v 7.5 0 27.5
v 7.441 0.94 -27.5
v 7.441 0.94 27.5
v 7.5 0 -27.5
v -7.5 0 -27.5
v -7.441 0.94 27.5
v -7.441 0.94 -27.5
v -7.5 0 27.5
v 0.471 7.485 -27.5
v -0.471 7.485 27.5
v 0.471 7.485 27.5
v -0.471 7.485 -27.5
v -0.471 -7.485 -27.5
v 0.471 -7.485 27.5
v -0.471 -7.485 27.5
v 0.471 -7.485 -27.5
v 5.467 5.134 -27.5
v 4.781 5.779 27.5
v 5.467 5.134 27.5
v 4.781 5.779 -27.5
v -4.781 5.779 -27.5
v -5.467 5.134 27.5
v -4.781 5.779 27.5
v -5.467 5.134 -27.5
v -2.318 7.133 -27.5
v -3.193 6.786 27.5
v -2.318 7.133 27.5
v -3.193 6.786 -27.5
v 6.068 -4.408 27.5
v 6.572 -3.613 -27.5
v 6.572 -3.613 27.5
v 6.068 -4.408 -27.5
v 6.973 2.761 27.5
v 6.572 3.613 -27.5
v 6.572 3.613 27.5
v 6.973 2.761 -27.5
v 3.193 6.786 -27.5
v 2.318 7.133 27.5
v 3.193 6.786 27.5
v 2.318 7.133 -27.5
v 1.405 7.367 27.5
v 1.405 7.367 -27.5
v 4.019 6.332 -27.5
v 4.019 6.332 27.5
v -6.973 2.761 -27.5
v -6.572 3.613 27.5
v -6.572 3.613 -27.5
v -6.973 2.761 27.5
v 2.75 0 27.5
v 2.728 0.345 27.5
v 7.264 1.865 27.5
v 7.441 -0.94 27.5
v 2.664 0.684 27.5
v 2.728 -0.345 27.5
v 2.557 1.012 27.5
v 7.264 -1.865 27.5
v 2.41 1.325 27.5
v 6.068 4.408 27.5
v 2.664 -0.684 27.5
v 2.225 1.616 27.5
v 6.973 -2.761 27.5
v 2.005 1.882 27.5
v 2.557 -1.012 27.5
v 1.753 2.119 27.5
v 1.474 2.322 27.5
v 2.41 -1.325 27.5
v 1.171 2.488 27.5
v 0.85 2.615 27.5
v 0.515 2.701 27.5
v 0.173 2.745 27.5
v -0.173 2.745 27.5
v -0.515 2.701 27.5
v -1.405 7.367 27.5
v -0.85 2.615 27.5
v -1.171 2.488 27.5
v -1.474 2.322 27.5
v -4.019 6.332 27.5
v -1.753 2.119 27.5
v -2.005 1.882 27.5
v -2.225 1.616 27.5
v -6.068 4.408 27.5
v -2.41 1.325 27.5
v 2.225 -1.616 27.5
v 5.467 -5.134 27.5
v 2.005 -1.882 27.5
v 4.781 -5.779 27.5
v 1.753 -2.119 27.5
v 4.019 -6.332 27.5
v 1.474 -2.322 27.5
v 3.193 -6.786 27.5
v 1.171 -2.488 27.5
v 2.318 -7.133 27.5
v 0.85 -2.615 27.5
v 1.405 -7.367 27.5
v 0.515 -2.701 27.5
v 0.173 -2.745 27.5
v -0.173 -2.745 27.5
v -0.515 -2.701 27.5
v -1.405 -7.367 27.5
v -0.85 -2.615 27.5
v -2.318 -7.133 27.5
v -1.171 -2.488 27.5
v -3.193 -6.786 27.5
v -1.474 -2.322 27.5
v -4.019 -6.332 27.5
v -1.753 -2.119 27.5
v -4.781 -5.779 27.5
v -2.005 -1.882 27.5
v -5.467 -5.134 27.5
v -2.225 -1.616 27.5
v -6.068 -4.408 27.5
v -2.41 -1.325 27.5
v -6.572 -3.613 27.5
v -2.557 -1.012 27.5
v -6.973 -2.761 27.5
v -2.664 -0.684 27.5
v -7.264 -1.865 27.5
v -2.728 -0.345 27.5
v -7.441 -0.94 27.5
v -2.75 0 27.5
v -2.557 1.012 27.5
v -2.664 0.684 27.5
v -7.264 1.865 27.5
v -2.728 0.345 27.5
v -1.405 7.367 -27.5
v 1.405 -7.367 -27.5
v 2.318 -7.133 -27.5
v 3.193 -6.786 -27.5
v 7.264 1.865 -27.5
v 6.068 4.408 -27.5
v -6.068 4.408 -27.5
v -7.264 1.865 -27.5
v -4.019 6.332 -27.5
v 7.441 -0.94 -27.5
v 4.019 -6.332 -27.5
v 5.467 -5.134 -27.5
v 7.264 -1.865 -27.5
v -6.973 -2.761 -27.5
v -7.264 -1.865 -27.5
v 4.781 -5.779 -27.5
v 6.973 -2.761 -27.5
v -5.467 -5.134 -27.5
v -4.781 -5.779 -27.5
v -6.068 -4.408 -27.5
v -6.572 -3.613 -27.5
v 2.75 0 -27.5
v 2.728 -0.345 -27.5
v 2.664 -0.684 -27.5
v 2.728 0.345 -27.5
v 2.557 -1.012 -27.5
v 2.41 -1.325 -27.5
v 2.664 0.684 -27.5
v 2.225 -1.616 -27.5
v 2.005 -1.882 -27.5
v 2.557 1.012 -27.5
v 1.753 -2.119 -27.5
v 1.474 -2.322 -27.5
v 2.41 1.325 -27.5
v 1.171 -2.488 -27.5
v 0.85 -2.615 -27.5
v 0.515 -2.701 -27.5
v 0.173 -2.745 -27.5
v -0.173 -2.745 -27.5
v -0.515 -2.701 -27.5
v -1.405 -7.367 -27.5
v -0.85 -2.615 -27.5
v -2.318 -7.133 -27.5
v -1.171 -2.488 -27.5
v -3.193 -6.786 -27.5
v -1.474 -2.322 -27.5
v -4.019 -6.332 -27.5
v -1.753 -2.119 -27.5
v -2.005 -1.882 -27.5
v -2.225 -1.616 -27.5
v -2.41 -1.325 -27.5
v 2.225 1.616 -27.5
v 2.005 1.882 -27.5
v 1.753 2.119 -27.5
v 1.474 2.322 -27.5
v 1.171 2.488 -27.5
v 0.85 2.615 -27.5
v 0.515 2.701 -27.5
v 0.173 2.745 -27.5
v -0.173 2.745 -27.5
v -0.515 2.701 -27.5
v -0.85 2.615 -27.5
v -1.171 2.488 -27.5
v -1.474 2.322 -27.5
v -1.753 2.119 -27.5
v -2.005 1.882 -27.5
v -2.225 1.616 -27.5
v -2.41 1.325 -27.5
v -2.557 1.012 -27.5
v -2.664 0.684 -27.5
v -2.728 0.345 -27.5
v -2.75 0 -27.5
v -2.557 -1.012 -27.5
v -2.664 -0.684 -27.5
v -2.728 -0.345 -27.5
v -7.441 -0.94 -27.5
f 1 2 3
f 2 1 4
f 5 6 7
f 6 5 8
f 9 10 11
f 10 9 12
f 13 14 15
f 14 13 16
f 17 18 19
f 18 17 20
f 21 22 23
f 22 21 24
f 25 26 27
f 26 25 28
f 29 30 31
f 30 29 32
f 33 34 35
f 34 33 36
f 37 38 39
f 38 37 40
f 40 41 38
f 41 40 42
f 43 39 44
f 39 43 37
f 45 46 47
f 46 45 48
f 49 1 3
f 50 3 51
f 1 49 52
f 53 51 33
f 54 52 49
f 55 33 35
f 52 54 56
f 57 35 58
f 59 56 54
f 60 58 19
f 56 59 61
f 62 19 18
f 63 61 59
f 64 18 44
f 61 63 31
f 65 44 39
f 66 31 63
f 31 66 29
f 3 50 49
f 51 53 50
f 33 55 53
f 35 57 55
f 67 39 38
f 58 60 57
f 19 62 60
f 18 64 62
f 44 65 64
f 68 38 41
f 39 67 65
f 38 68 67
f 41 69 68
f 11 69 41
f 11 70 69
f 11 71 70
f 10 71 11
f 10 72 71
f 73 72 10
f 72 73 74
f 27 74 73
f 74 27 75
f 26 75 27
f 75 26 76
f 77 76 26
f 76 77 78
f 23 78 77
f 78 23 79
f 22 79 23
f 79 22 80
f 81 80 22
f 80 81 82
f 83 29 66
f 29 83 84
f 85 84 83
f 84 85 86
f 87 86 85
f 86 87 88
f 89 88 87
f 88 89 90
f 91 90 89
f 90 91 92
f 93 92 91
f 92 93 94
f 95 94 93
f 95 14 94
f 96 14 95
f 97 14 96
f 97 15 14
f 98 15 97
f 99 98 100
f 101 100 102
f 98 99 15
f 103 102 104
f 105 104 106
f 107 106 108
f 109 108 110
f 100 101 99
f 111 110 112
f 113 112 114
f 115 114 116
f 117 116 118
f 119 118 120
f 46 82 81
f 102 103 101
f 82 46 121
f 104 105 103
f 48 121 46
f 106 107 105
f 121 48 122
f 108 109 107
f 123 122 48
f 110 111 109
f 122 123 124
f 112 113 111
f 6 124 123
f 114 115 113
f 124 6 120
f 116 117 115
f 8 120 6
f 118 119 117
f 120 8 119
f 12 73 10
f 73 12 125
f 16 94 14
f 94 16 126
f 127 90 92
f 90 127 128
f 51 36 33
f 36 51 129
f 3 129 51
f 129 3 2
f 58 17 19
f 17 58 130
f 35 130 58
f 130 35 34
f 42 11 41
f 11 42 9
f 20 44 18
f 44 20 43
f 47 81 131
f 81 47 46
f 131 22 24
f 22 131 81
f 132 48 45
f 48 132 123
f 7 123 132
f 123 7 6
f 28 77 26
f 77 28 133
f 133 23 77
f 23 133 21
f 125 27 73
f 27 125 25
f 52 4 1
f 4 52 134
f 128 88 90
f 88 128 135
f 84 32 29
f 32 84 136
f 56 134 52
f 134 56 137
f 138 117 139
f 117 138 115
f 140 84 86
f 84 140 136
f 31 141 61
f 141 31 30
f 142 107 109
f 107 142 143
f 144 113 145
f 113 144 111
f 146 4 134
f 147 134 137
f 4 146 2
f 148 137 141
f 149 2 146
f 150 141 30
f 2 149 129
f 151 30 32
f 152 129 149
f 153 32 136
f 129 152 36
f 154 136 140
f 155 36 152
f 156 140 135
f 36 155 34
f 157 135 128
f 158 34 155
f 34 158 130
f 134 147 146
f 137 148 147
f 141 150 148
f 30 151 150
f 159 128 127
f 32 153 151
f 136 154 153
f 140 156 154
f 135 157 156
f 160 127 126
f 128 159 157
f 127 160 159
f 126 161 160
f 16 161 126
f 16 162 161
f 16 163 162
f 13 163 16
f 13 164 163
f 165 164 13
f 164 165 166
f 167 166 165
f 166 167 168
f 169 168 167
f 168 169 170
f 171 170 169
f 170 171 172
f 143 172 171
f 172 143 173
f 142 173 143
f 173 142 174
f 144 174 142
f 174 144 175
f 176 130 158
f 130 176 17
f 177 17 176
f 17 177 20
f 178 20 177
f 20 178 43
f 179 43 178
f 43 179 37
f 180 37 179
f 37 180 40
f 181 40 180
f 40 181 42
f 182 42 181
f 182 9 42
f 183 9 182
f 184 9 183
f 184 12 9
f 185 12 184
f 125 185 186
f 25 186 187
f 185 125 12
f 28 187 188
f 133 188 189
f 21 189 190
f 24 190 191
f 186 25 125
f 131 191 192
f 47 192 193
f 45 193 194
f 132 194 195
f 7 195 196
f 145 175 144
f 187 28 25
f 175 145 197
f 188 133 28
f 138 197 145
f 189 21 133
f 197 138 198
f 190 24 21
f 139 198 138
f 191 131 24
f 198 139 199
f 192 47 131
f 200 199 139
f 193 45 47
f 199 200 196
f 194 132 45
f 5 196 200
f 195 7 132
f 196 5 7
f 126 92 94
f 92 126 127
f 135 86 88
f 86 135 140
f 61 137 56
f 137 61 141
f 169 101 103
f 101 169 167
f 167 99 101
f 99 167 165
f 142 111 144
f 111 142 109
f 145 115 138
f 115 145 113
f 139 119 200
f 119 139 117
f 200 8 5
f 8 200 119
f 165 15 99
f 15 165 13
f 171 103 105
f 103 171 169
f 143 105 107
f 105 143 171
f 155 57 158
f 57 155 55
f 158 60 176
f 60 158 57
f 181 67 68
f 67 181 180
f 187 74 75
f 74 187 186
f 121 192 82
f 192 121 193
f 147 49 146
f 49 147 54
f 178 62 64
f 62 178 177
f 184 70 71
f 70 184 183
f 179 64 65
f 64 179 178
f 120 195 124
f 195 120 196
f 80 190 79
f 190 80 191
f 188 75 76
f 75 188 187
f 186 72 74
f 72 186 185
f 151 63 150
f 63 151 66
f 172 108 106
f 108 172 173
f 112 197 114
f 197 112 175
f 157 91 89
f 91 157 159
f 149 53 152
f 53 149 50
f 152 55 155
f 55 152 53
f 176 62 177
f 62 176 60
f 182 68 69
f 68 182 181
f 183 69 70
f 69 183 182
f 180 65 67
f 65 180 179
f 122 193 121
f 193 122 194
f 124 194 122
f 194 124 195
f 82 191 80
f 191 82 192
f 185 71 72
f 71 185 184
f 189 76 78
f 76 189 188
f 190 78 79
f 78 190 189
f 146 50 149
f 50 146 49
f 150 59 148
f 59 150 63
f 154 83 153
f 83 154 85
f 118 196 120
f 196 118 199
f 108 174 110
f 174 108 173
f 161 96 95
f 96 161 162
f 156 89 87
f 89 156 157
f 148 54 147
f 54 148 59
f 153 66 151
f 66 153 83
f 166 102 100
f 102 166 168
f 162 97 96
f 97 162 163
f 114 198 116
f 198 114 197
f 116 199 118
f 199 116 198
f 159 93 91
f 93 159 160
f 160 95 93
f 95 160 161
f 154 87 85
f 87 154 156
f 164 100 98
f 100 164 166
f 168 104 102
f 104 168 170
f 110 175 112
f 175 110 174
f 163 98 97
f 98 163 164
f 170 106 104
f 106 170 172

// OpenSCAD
$fn = 50;


difference() {
	union() {
		translate(v = [0, 0, -27.5000000000]) {
			cylinder(h = 55, r = 7.5000000000);
		}
	}
	union() {
		translate(v = [0, 0, -100.0000000000]) {
			cylinder(h = 200, r = 2.7500000000);
		}
	}
}
